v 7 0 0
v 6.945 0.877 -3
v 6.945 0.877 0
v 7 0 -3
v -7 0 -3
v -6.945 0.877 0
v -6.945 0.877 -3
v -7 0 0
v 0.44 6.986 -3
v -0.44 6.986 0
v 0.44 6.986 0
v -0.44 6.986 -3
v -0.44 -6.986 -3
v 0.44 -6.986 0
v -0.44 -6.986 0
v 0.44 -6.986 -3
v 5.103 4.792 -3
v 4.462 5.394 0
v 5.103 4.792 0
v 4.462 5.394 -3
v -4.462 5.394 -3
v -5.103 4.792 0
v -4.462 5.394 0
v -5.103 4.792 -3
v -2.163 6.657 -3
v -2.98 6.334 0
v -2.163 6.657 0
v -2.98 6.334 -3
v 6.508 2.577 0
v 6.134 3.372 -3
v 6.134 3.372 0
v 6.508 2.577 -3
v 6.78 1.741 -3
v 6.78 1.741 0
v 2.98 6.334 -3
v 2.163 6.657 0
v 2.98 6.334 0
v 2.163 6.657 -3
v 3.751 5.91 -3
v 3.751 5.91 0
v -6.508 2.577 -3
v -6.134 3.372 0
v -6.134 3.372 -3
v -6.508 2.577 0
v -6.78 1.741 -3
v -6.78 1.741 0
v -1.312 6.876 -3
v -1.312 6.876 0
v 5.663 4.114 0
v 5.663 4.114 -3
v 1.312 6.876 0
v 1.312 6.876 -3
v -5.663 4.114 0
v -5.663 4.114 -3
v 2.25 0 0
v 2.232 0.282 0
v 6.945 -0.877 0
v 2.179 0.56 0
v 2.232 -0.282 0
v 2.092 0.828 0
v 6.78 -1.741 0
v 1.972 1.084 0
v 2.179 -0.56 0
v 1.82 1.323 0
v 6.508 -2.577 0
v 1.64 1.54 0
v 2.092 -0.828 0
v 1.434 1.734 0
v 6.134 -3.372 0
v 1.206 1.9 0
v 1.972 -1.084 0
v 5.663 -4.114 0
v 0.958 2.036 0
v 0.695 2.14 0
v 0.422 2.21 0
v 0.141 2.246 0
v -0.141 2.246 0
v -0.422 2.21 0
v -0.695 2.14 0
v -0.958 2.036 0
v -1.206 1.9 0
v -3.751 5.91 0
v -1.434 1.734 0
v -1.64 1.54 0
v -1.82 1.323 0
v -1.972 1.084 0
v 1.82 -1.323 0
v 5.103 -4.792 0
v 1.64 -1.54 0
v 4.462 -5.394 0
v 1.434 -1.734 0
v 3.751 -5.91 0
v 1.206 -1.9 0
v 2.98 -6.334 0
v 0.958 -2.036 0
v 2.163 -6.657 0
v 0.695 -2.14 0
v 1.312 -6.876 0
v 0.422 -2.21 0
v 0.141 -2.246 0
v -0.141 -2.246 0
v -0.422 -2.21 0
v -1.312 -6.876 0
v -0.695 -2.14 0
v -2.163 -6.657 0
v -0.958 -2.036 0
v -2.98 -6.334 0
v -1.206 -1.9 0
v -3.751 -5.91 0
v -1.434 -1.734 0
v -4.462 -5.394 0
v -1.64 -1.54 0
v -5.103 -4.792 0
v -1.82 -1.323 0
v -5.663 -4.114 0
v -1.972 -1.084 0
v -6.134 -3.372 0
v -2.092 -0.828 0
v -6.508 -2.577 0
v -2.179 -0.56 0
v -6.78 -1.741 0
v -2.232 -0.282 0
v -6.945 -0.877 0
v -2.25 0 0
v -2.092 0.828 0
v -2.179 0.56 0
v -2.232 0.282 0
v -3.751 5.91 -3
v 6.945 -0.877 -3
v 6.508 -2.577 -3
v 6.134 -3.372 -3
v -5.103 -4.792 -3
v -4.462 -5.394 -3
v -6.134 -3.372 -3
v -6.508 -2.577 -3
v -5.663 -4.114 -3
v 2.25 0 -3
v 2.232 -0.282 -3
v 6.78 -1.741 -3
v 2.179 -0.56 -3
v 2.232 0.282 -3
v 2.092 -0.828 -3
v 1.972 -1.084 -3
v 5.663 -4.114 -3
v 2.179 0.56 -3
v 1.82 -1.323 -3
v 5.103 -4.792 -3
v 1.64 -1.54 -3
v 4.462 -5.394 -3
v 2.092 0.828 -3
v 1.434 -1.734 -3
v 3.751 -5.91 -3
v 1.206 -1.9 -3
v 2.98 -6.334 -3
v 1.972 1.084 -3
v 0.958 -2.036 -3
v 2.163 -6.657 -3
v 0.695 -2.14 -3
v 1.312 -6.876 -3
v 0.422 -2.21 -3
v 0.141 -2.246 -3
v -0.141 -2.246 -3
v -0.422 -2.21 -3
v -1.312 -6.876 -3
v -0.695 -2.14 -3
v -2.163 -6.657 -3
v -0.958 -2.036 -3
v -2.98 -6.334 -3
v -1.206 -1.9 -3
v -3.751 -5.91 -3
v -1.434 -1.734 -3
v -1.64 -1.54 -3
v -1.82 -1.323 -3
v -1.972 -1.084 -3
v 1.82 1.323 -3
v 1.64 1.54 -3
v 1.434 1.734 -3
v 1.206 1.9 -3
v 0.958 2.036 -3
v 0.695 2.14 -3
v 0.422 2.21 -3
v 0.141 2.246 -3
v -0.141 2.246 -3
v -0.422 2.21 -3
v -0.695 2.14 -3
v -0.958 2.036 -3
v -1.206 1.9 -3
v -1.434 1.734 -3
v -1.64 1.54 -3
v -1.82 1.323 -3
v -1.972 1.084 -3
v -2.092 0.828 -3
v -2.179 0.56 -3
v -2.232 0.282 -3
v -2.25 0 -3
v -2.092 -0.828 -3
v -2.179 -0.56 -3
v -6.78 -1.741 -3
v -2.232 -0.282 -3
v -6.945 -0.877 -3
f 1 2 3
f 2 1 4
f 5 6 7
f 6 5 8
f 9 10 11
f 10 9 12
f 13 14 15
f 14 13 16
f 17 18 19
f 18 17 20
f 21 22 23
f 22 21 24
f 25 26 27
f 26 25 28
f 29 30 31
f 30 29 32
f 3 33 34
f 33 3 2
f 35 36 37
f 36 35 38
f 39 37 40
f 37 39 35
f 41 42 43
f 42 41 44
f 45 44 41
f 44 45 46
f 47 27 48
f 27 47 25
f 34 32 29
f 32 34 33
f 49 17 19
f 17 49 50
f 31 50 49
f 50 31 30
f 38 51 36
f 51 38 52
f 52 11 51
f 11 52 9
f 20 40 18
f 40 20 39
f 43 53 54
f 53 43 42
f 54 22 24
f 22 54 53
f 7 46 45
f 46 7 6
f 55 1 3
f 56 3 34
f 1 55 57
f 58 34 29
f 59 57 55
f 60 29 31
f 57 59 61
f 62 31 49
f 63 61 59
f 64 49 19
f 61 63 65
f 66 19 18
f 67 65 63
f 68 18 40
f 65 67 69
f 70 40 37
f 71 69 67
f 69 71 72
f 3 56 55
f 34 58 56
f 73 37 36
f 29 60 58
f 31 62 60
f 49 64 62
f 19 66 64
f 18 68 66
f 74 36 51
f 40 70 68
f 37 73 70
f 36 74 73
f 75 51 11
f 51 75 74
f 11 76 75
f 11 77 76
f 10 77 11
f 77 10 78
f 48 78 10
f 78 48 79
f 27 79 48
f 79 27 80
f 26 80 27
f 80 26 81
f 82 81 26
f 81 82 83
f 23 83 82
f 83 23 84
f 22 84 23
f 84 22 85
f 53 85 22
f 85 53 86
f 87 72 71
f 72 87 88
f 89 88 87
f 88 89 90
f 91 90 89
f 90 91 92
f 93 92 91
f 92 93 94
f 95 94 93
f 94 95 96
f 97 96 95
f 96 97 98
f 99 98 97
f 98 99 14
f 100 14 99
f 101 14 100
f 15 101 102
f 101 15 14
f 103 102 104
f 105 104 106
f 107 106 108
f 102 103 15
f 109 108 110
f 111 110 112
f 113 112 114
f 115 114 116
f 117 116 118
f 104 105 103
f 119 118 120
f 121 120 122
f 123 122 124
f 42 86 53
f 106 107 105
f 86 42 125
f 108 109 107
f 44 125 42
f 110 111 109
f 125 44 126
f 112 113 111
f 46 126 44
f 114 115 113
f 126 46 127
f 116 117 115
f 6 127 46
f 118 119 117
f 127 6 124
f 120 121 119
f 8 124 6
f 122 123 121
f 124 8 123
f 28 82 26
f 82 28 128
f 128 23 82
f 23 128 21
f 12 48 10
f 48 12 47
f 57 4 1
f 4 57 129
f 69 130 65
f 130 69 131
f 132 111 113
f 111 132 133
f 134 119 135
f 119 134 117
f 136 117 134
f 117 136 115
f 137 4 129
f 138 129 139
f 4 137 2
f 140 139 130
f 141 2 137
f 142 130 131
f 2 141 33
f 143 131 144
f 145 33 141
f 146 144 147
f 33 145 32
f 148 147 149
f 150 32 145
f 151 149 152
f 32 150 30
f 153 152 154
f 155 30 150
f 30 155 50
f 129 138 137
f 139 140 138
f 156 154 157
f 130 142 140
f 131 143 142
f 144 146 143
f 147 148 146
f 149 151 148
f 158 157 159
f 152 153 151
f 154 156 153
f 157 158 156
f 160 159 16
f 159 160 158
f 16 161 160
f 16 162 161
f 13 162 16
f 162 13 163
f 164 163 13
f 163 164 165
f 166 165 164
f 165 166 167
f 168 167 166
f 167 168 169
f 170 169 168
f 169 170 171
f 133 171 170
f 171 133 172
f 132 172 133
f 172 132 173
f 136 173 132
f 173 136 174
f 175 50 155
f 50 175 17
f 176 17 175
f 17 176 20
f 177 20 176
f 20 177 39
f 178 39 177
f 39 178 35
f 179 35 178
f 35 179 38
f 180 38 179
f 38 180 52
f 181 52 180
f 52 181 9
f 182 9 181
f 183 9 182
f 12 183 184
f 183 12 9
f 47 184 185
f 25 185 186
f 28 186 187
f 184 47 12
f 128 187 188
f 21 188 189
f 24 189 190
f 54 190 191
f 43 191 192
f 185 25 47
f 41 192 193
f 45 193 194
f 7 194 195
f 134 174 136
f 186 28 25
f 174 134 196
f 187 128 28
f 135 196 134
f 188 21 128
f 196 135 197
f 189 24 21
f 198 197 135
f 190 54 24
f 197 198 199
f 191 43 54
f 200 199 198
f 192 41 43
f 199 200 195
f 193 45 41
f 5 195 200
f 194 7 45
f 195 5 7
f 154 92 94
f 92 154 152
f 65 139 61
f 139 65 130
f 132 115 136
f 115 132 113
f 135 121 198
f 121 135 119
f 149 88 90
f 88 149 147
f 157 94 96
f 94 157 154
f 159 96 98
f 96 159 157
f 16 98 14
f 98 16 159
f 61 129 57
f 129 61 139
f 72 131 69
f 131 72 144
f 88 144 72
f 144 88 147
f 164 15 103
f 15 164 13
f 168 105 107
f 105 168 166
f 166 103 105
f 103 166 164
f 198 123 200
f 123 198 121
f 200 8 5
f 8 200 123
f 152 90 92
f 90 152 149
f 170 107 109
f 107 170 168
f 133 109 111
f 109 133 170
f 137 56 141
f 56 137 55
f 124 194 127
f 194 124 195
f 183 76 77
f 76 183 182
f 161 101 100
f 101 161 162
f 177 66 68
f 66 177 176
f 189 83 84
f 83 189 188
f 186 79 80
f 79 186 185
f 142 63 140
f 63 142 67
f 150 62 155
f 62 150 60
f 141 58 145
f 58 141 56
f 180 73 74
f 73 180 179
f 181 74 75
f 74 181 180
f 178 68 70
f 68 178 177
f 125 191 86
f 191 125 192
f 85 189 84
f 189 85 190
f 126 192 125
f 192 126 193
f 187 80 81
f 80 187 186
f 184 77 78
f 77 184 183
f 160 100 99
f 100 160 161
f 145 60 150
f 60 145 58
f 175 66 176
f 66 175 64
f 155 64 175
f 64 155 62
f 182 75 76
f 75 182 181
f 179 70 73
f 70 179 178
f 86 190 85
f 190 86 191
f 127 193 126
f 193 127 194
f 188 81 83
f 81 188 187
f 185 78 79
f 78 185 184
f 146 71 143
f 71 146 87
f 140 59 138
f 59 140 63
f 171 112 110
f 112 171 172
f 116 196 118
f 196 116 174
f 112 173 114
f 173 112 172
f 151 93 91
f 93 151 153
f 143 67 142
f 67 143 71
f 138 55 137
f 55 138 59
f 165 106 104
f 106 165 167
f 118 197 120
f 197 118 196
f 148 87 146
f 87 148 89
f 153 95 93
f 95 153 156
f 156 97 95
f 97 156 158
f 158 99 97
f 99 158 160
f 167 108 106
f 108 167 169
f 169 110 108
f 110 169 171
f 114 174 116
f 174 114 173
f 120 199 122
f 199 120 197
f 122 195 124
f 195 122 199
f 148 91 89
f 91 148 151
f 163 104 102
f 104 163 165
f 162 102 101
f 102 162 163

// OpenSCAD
$fn = 50;


difference() {
	union() {
		translate(v = [0, 0, -3.0000000000]) {
			cylinder(h = 3, r = 7.0000000000);
		}
		cylinder(h = 0, r = 16.0000000000);
	}
	union() {
		#translate(v = [0, 0, -3]) {
			cylinder(h = 3, r = 2.2500000000);
		}
	}
}
